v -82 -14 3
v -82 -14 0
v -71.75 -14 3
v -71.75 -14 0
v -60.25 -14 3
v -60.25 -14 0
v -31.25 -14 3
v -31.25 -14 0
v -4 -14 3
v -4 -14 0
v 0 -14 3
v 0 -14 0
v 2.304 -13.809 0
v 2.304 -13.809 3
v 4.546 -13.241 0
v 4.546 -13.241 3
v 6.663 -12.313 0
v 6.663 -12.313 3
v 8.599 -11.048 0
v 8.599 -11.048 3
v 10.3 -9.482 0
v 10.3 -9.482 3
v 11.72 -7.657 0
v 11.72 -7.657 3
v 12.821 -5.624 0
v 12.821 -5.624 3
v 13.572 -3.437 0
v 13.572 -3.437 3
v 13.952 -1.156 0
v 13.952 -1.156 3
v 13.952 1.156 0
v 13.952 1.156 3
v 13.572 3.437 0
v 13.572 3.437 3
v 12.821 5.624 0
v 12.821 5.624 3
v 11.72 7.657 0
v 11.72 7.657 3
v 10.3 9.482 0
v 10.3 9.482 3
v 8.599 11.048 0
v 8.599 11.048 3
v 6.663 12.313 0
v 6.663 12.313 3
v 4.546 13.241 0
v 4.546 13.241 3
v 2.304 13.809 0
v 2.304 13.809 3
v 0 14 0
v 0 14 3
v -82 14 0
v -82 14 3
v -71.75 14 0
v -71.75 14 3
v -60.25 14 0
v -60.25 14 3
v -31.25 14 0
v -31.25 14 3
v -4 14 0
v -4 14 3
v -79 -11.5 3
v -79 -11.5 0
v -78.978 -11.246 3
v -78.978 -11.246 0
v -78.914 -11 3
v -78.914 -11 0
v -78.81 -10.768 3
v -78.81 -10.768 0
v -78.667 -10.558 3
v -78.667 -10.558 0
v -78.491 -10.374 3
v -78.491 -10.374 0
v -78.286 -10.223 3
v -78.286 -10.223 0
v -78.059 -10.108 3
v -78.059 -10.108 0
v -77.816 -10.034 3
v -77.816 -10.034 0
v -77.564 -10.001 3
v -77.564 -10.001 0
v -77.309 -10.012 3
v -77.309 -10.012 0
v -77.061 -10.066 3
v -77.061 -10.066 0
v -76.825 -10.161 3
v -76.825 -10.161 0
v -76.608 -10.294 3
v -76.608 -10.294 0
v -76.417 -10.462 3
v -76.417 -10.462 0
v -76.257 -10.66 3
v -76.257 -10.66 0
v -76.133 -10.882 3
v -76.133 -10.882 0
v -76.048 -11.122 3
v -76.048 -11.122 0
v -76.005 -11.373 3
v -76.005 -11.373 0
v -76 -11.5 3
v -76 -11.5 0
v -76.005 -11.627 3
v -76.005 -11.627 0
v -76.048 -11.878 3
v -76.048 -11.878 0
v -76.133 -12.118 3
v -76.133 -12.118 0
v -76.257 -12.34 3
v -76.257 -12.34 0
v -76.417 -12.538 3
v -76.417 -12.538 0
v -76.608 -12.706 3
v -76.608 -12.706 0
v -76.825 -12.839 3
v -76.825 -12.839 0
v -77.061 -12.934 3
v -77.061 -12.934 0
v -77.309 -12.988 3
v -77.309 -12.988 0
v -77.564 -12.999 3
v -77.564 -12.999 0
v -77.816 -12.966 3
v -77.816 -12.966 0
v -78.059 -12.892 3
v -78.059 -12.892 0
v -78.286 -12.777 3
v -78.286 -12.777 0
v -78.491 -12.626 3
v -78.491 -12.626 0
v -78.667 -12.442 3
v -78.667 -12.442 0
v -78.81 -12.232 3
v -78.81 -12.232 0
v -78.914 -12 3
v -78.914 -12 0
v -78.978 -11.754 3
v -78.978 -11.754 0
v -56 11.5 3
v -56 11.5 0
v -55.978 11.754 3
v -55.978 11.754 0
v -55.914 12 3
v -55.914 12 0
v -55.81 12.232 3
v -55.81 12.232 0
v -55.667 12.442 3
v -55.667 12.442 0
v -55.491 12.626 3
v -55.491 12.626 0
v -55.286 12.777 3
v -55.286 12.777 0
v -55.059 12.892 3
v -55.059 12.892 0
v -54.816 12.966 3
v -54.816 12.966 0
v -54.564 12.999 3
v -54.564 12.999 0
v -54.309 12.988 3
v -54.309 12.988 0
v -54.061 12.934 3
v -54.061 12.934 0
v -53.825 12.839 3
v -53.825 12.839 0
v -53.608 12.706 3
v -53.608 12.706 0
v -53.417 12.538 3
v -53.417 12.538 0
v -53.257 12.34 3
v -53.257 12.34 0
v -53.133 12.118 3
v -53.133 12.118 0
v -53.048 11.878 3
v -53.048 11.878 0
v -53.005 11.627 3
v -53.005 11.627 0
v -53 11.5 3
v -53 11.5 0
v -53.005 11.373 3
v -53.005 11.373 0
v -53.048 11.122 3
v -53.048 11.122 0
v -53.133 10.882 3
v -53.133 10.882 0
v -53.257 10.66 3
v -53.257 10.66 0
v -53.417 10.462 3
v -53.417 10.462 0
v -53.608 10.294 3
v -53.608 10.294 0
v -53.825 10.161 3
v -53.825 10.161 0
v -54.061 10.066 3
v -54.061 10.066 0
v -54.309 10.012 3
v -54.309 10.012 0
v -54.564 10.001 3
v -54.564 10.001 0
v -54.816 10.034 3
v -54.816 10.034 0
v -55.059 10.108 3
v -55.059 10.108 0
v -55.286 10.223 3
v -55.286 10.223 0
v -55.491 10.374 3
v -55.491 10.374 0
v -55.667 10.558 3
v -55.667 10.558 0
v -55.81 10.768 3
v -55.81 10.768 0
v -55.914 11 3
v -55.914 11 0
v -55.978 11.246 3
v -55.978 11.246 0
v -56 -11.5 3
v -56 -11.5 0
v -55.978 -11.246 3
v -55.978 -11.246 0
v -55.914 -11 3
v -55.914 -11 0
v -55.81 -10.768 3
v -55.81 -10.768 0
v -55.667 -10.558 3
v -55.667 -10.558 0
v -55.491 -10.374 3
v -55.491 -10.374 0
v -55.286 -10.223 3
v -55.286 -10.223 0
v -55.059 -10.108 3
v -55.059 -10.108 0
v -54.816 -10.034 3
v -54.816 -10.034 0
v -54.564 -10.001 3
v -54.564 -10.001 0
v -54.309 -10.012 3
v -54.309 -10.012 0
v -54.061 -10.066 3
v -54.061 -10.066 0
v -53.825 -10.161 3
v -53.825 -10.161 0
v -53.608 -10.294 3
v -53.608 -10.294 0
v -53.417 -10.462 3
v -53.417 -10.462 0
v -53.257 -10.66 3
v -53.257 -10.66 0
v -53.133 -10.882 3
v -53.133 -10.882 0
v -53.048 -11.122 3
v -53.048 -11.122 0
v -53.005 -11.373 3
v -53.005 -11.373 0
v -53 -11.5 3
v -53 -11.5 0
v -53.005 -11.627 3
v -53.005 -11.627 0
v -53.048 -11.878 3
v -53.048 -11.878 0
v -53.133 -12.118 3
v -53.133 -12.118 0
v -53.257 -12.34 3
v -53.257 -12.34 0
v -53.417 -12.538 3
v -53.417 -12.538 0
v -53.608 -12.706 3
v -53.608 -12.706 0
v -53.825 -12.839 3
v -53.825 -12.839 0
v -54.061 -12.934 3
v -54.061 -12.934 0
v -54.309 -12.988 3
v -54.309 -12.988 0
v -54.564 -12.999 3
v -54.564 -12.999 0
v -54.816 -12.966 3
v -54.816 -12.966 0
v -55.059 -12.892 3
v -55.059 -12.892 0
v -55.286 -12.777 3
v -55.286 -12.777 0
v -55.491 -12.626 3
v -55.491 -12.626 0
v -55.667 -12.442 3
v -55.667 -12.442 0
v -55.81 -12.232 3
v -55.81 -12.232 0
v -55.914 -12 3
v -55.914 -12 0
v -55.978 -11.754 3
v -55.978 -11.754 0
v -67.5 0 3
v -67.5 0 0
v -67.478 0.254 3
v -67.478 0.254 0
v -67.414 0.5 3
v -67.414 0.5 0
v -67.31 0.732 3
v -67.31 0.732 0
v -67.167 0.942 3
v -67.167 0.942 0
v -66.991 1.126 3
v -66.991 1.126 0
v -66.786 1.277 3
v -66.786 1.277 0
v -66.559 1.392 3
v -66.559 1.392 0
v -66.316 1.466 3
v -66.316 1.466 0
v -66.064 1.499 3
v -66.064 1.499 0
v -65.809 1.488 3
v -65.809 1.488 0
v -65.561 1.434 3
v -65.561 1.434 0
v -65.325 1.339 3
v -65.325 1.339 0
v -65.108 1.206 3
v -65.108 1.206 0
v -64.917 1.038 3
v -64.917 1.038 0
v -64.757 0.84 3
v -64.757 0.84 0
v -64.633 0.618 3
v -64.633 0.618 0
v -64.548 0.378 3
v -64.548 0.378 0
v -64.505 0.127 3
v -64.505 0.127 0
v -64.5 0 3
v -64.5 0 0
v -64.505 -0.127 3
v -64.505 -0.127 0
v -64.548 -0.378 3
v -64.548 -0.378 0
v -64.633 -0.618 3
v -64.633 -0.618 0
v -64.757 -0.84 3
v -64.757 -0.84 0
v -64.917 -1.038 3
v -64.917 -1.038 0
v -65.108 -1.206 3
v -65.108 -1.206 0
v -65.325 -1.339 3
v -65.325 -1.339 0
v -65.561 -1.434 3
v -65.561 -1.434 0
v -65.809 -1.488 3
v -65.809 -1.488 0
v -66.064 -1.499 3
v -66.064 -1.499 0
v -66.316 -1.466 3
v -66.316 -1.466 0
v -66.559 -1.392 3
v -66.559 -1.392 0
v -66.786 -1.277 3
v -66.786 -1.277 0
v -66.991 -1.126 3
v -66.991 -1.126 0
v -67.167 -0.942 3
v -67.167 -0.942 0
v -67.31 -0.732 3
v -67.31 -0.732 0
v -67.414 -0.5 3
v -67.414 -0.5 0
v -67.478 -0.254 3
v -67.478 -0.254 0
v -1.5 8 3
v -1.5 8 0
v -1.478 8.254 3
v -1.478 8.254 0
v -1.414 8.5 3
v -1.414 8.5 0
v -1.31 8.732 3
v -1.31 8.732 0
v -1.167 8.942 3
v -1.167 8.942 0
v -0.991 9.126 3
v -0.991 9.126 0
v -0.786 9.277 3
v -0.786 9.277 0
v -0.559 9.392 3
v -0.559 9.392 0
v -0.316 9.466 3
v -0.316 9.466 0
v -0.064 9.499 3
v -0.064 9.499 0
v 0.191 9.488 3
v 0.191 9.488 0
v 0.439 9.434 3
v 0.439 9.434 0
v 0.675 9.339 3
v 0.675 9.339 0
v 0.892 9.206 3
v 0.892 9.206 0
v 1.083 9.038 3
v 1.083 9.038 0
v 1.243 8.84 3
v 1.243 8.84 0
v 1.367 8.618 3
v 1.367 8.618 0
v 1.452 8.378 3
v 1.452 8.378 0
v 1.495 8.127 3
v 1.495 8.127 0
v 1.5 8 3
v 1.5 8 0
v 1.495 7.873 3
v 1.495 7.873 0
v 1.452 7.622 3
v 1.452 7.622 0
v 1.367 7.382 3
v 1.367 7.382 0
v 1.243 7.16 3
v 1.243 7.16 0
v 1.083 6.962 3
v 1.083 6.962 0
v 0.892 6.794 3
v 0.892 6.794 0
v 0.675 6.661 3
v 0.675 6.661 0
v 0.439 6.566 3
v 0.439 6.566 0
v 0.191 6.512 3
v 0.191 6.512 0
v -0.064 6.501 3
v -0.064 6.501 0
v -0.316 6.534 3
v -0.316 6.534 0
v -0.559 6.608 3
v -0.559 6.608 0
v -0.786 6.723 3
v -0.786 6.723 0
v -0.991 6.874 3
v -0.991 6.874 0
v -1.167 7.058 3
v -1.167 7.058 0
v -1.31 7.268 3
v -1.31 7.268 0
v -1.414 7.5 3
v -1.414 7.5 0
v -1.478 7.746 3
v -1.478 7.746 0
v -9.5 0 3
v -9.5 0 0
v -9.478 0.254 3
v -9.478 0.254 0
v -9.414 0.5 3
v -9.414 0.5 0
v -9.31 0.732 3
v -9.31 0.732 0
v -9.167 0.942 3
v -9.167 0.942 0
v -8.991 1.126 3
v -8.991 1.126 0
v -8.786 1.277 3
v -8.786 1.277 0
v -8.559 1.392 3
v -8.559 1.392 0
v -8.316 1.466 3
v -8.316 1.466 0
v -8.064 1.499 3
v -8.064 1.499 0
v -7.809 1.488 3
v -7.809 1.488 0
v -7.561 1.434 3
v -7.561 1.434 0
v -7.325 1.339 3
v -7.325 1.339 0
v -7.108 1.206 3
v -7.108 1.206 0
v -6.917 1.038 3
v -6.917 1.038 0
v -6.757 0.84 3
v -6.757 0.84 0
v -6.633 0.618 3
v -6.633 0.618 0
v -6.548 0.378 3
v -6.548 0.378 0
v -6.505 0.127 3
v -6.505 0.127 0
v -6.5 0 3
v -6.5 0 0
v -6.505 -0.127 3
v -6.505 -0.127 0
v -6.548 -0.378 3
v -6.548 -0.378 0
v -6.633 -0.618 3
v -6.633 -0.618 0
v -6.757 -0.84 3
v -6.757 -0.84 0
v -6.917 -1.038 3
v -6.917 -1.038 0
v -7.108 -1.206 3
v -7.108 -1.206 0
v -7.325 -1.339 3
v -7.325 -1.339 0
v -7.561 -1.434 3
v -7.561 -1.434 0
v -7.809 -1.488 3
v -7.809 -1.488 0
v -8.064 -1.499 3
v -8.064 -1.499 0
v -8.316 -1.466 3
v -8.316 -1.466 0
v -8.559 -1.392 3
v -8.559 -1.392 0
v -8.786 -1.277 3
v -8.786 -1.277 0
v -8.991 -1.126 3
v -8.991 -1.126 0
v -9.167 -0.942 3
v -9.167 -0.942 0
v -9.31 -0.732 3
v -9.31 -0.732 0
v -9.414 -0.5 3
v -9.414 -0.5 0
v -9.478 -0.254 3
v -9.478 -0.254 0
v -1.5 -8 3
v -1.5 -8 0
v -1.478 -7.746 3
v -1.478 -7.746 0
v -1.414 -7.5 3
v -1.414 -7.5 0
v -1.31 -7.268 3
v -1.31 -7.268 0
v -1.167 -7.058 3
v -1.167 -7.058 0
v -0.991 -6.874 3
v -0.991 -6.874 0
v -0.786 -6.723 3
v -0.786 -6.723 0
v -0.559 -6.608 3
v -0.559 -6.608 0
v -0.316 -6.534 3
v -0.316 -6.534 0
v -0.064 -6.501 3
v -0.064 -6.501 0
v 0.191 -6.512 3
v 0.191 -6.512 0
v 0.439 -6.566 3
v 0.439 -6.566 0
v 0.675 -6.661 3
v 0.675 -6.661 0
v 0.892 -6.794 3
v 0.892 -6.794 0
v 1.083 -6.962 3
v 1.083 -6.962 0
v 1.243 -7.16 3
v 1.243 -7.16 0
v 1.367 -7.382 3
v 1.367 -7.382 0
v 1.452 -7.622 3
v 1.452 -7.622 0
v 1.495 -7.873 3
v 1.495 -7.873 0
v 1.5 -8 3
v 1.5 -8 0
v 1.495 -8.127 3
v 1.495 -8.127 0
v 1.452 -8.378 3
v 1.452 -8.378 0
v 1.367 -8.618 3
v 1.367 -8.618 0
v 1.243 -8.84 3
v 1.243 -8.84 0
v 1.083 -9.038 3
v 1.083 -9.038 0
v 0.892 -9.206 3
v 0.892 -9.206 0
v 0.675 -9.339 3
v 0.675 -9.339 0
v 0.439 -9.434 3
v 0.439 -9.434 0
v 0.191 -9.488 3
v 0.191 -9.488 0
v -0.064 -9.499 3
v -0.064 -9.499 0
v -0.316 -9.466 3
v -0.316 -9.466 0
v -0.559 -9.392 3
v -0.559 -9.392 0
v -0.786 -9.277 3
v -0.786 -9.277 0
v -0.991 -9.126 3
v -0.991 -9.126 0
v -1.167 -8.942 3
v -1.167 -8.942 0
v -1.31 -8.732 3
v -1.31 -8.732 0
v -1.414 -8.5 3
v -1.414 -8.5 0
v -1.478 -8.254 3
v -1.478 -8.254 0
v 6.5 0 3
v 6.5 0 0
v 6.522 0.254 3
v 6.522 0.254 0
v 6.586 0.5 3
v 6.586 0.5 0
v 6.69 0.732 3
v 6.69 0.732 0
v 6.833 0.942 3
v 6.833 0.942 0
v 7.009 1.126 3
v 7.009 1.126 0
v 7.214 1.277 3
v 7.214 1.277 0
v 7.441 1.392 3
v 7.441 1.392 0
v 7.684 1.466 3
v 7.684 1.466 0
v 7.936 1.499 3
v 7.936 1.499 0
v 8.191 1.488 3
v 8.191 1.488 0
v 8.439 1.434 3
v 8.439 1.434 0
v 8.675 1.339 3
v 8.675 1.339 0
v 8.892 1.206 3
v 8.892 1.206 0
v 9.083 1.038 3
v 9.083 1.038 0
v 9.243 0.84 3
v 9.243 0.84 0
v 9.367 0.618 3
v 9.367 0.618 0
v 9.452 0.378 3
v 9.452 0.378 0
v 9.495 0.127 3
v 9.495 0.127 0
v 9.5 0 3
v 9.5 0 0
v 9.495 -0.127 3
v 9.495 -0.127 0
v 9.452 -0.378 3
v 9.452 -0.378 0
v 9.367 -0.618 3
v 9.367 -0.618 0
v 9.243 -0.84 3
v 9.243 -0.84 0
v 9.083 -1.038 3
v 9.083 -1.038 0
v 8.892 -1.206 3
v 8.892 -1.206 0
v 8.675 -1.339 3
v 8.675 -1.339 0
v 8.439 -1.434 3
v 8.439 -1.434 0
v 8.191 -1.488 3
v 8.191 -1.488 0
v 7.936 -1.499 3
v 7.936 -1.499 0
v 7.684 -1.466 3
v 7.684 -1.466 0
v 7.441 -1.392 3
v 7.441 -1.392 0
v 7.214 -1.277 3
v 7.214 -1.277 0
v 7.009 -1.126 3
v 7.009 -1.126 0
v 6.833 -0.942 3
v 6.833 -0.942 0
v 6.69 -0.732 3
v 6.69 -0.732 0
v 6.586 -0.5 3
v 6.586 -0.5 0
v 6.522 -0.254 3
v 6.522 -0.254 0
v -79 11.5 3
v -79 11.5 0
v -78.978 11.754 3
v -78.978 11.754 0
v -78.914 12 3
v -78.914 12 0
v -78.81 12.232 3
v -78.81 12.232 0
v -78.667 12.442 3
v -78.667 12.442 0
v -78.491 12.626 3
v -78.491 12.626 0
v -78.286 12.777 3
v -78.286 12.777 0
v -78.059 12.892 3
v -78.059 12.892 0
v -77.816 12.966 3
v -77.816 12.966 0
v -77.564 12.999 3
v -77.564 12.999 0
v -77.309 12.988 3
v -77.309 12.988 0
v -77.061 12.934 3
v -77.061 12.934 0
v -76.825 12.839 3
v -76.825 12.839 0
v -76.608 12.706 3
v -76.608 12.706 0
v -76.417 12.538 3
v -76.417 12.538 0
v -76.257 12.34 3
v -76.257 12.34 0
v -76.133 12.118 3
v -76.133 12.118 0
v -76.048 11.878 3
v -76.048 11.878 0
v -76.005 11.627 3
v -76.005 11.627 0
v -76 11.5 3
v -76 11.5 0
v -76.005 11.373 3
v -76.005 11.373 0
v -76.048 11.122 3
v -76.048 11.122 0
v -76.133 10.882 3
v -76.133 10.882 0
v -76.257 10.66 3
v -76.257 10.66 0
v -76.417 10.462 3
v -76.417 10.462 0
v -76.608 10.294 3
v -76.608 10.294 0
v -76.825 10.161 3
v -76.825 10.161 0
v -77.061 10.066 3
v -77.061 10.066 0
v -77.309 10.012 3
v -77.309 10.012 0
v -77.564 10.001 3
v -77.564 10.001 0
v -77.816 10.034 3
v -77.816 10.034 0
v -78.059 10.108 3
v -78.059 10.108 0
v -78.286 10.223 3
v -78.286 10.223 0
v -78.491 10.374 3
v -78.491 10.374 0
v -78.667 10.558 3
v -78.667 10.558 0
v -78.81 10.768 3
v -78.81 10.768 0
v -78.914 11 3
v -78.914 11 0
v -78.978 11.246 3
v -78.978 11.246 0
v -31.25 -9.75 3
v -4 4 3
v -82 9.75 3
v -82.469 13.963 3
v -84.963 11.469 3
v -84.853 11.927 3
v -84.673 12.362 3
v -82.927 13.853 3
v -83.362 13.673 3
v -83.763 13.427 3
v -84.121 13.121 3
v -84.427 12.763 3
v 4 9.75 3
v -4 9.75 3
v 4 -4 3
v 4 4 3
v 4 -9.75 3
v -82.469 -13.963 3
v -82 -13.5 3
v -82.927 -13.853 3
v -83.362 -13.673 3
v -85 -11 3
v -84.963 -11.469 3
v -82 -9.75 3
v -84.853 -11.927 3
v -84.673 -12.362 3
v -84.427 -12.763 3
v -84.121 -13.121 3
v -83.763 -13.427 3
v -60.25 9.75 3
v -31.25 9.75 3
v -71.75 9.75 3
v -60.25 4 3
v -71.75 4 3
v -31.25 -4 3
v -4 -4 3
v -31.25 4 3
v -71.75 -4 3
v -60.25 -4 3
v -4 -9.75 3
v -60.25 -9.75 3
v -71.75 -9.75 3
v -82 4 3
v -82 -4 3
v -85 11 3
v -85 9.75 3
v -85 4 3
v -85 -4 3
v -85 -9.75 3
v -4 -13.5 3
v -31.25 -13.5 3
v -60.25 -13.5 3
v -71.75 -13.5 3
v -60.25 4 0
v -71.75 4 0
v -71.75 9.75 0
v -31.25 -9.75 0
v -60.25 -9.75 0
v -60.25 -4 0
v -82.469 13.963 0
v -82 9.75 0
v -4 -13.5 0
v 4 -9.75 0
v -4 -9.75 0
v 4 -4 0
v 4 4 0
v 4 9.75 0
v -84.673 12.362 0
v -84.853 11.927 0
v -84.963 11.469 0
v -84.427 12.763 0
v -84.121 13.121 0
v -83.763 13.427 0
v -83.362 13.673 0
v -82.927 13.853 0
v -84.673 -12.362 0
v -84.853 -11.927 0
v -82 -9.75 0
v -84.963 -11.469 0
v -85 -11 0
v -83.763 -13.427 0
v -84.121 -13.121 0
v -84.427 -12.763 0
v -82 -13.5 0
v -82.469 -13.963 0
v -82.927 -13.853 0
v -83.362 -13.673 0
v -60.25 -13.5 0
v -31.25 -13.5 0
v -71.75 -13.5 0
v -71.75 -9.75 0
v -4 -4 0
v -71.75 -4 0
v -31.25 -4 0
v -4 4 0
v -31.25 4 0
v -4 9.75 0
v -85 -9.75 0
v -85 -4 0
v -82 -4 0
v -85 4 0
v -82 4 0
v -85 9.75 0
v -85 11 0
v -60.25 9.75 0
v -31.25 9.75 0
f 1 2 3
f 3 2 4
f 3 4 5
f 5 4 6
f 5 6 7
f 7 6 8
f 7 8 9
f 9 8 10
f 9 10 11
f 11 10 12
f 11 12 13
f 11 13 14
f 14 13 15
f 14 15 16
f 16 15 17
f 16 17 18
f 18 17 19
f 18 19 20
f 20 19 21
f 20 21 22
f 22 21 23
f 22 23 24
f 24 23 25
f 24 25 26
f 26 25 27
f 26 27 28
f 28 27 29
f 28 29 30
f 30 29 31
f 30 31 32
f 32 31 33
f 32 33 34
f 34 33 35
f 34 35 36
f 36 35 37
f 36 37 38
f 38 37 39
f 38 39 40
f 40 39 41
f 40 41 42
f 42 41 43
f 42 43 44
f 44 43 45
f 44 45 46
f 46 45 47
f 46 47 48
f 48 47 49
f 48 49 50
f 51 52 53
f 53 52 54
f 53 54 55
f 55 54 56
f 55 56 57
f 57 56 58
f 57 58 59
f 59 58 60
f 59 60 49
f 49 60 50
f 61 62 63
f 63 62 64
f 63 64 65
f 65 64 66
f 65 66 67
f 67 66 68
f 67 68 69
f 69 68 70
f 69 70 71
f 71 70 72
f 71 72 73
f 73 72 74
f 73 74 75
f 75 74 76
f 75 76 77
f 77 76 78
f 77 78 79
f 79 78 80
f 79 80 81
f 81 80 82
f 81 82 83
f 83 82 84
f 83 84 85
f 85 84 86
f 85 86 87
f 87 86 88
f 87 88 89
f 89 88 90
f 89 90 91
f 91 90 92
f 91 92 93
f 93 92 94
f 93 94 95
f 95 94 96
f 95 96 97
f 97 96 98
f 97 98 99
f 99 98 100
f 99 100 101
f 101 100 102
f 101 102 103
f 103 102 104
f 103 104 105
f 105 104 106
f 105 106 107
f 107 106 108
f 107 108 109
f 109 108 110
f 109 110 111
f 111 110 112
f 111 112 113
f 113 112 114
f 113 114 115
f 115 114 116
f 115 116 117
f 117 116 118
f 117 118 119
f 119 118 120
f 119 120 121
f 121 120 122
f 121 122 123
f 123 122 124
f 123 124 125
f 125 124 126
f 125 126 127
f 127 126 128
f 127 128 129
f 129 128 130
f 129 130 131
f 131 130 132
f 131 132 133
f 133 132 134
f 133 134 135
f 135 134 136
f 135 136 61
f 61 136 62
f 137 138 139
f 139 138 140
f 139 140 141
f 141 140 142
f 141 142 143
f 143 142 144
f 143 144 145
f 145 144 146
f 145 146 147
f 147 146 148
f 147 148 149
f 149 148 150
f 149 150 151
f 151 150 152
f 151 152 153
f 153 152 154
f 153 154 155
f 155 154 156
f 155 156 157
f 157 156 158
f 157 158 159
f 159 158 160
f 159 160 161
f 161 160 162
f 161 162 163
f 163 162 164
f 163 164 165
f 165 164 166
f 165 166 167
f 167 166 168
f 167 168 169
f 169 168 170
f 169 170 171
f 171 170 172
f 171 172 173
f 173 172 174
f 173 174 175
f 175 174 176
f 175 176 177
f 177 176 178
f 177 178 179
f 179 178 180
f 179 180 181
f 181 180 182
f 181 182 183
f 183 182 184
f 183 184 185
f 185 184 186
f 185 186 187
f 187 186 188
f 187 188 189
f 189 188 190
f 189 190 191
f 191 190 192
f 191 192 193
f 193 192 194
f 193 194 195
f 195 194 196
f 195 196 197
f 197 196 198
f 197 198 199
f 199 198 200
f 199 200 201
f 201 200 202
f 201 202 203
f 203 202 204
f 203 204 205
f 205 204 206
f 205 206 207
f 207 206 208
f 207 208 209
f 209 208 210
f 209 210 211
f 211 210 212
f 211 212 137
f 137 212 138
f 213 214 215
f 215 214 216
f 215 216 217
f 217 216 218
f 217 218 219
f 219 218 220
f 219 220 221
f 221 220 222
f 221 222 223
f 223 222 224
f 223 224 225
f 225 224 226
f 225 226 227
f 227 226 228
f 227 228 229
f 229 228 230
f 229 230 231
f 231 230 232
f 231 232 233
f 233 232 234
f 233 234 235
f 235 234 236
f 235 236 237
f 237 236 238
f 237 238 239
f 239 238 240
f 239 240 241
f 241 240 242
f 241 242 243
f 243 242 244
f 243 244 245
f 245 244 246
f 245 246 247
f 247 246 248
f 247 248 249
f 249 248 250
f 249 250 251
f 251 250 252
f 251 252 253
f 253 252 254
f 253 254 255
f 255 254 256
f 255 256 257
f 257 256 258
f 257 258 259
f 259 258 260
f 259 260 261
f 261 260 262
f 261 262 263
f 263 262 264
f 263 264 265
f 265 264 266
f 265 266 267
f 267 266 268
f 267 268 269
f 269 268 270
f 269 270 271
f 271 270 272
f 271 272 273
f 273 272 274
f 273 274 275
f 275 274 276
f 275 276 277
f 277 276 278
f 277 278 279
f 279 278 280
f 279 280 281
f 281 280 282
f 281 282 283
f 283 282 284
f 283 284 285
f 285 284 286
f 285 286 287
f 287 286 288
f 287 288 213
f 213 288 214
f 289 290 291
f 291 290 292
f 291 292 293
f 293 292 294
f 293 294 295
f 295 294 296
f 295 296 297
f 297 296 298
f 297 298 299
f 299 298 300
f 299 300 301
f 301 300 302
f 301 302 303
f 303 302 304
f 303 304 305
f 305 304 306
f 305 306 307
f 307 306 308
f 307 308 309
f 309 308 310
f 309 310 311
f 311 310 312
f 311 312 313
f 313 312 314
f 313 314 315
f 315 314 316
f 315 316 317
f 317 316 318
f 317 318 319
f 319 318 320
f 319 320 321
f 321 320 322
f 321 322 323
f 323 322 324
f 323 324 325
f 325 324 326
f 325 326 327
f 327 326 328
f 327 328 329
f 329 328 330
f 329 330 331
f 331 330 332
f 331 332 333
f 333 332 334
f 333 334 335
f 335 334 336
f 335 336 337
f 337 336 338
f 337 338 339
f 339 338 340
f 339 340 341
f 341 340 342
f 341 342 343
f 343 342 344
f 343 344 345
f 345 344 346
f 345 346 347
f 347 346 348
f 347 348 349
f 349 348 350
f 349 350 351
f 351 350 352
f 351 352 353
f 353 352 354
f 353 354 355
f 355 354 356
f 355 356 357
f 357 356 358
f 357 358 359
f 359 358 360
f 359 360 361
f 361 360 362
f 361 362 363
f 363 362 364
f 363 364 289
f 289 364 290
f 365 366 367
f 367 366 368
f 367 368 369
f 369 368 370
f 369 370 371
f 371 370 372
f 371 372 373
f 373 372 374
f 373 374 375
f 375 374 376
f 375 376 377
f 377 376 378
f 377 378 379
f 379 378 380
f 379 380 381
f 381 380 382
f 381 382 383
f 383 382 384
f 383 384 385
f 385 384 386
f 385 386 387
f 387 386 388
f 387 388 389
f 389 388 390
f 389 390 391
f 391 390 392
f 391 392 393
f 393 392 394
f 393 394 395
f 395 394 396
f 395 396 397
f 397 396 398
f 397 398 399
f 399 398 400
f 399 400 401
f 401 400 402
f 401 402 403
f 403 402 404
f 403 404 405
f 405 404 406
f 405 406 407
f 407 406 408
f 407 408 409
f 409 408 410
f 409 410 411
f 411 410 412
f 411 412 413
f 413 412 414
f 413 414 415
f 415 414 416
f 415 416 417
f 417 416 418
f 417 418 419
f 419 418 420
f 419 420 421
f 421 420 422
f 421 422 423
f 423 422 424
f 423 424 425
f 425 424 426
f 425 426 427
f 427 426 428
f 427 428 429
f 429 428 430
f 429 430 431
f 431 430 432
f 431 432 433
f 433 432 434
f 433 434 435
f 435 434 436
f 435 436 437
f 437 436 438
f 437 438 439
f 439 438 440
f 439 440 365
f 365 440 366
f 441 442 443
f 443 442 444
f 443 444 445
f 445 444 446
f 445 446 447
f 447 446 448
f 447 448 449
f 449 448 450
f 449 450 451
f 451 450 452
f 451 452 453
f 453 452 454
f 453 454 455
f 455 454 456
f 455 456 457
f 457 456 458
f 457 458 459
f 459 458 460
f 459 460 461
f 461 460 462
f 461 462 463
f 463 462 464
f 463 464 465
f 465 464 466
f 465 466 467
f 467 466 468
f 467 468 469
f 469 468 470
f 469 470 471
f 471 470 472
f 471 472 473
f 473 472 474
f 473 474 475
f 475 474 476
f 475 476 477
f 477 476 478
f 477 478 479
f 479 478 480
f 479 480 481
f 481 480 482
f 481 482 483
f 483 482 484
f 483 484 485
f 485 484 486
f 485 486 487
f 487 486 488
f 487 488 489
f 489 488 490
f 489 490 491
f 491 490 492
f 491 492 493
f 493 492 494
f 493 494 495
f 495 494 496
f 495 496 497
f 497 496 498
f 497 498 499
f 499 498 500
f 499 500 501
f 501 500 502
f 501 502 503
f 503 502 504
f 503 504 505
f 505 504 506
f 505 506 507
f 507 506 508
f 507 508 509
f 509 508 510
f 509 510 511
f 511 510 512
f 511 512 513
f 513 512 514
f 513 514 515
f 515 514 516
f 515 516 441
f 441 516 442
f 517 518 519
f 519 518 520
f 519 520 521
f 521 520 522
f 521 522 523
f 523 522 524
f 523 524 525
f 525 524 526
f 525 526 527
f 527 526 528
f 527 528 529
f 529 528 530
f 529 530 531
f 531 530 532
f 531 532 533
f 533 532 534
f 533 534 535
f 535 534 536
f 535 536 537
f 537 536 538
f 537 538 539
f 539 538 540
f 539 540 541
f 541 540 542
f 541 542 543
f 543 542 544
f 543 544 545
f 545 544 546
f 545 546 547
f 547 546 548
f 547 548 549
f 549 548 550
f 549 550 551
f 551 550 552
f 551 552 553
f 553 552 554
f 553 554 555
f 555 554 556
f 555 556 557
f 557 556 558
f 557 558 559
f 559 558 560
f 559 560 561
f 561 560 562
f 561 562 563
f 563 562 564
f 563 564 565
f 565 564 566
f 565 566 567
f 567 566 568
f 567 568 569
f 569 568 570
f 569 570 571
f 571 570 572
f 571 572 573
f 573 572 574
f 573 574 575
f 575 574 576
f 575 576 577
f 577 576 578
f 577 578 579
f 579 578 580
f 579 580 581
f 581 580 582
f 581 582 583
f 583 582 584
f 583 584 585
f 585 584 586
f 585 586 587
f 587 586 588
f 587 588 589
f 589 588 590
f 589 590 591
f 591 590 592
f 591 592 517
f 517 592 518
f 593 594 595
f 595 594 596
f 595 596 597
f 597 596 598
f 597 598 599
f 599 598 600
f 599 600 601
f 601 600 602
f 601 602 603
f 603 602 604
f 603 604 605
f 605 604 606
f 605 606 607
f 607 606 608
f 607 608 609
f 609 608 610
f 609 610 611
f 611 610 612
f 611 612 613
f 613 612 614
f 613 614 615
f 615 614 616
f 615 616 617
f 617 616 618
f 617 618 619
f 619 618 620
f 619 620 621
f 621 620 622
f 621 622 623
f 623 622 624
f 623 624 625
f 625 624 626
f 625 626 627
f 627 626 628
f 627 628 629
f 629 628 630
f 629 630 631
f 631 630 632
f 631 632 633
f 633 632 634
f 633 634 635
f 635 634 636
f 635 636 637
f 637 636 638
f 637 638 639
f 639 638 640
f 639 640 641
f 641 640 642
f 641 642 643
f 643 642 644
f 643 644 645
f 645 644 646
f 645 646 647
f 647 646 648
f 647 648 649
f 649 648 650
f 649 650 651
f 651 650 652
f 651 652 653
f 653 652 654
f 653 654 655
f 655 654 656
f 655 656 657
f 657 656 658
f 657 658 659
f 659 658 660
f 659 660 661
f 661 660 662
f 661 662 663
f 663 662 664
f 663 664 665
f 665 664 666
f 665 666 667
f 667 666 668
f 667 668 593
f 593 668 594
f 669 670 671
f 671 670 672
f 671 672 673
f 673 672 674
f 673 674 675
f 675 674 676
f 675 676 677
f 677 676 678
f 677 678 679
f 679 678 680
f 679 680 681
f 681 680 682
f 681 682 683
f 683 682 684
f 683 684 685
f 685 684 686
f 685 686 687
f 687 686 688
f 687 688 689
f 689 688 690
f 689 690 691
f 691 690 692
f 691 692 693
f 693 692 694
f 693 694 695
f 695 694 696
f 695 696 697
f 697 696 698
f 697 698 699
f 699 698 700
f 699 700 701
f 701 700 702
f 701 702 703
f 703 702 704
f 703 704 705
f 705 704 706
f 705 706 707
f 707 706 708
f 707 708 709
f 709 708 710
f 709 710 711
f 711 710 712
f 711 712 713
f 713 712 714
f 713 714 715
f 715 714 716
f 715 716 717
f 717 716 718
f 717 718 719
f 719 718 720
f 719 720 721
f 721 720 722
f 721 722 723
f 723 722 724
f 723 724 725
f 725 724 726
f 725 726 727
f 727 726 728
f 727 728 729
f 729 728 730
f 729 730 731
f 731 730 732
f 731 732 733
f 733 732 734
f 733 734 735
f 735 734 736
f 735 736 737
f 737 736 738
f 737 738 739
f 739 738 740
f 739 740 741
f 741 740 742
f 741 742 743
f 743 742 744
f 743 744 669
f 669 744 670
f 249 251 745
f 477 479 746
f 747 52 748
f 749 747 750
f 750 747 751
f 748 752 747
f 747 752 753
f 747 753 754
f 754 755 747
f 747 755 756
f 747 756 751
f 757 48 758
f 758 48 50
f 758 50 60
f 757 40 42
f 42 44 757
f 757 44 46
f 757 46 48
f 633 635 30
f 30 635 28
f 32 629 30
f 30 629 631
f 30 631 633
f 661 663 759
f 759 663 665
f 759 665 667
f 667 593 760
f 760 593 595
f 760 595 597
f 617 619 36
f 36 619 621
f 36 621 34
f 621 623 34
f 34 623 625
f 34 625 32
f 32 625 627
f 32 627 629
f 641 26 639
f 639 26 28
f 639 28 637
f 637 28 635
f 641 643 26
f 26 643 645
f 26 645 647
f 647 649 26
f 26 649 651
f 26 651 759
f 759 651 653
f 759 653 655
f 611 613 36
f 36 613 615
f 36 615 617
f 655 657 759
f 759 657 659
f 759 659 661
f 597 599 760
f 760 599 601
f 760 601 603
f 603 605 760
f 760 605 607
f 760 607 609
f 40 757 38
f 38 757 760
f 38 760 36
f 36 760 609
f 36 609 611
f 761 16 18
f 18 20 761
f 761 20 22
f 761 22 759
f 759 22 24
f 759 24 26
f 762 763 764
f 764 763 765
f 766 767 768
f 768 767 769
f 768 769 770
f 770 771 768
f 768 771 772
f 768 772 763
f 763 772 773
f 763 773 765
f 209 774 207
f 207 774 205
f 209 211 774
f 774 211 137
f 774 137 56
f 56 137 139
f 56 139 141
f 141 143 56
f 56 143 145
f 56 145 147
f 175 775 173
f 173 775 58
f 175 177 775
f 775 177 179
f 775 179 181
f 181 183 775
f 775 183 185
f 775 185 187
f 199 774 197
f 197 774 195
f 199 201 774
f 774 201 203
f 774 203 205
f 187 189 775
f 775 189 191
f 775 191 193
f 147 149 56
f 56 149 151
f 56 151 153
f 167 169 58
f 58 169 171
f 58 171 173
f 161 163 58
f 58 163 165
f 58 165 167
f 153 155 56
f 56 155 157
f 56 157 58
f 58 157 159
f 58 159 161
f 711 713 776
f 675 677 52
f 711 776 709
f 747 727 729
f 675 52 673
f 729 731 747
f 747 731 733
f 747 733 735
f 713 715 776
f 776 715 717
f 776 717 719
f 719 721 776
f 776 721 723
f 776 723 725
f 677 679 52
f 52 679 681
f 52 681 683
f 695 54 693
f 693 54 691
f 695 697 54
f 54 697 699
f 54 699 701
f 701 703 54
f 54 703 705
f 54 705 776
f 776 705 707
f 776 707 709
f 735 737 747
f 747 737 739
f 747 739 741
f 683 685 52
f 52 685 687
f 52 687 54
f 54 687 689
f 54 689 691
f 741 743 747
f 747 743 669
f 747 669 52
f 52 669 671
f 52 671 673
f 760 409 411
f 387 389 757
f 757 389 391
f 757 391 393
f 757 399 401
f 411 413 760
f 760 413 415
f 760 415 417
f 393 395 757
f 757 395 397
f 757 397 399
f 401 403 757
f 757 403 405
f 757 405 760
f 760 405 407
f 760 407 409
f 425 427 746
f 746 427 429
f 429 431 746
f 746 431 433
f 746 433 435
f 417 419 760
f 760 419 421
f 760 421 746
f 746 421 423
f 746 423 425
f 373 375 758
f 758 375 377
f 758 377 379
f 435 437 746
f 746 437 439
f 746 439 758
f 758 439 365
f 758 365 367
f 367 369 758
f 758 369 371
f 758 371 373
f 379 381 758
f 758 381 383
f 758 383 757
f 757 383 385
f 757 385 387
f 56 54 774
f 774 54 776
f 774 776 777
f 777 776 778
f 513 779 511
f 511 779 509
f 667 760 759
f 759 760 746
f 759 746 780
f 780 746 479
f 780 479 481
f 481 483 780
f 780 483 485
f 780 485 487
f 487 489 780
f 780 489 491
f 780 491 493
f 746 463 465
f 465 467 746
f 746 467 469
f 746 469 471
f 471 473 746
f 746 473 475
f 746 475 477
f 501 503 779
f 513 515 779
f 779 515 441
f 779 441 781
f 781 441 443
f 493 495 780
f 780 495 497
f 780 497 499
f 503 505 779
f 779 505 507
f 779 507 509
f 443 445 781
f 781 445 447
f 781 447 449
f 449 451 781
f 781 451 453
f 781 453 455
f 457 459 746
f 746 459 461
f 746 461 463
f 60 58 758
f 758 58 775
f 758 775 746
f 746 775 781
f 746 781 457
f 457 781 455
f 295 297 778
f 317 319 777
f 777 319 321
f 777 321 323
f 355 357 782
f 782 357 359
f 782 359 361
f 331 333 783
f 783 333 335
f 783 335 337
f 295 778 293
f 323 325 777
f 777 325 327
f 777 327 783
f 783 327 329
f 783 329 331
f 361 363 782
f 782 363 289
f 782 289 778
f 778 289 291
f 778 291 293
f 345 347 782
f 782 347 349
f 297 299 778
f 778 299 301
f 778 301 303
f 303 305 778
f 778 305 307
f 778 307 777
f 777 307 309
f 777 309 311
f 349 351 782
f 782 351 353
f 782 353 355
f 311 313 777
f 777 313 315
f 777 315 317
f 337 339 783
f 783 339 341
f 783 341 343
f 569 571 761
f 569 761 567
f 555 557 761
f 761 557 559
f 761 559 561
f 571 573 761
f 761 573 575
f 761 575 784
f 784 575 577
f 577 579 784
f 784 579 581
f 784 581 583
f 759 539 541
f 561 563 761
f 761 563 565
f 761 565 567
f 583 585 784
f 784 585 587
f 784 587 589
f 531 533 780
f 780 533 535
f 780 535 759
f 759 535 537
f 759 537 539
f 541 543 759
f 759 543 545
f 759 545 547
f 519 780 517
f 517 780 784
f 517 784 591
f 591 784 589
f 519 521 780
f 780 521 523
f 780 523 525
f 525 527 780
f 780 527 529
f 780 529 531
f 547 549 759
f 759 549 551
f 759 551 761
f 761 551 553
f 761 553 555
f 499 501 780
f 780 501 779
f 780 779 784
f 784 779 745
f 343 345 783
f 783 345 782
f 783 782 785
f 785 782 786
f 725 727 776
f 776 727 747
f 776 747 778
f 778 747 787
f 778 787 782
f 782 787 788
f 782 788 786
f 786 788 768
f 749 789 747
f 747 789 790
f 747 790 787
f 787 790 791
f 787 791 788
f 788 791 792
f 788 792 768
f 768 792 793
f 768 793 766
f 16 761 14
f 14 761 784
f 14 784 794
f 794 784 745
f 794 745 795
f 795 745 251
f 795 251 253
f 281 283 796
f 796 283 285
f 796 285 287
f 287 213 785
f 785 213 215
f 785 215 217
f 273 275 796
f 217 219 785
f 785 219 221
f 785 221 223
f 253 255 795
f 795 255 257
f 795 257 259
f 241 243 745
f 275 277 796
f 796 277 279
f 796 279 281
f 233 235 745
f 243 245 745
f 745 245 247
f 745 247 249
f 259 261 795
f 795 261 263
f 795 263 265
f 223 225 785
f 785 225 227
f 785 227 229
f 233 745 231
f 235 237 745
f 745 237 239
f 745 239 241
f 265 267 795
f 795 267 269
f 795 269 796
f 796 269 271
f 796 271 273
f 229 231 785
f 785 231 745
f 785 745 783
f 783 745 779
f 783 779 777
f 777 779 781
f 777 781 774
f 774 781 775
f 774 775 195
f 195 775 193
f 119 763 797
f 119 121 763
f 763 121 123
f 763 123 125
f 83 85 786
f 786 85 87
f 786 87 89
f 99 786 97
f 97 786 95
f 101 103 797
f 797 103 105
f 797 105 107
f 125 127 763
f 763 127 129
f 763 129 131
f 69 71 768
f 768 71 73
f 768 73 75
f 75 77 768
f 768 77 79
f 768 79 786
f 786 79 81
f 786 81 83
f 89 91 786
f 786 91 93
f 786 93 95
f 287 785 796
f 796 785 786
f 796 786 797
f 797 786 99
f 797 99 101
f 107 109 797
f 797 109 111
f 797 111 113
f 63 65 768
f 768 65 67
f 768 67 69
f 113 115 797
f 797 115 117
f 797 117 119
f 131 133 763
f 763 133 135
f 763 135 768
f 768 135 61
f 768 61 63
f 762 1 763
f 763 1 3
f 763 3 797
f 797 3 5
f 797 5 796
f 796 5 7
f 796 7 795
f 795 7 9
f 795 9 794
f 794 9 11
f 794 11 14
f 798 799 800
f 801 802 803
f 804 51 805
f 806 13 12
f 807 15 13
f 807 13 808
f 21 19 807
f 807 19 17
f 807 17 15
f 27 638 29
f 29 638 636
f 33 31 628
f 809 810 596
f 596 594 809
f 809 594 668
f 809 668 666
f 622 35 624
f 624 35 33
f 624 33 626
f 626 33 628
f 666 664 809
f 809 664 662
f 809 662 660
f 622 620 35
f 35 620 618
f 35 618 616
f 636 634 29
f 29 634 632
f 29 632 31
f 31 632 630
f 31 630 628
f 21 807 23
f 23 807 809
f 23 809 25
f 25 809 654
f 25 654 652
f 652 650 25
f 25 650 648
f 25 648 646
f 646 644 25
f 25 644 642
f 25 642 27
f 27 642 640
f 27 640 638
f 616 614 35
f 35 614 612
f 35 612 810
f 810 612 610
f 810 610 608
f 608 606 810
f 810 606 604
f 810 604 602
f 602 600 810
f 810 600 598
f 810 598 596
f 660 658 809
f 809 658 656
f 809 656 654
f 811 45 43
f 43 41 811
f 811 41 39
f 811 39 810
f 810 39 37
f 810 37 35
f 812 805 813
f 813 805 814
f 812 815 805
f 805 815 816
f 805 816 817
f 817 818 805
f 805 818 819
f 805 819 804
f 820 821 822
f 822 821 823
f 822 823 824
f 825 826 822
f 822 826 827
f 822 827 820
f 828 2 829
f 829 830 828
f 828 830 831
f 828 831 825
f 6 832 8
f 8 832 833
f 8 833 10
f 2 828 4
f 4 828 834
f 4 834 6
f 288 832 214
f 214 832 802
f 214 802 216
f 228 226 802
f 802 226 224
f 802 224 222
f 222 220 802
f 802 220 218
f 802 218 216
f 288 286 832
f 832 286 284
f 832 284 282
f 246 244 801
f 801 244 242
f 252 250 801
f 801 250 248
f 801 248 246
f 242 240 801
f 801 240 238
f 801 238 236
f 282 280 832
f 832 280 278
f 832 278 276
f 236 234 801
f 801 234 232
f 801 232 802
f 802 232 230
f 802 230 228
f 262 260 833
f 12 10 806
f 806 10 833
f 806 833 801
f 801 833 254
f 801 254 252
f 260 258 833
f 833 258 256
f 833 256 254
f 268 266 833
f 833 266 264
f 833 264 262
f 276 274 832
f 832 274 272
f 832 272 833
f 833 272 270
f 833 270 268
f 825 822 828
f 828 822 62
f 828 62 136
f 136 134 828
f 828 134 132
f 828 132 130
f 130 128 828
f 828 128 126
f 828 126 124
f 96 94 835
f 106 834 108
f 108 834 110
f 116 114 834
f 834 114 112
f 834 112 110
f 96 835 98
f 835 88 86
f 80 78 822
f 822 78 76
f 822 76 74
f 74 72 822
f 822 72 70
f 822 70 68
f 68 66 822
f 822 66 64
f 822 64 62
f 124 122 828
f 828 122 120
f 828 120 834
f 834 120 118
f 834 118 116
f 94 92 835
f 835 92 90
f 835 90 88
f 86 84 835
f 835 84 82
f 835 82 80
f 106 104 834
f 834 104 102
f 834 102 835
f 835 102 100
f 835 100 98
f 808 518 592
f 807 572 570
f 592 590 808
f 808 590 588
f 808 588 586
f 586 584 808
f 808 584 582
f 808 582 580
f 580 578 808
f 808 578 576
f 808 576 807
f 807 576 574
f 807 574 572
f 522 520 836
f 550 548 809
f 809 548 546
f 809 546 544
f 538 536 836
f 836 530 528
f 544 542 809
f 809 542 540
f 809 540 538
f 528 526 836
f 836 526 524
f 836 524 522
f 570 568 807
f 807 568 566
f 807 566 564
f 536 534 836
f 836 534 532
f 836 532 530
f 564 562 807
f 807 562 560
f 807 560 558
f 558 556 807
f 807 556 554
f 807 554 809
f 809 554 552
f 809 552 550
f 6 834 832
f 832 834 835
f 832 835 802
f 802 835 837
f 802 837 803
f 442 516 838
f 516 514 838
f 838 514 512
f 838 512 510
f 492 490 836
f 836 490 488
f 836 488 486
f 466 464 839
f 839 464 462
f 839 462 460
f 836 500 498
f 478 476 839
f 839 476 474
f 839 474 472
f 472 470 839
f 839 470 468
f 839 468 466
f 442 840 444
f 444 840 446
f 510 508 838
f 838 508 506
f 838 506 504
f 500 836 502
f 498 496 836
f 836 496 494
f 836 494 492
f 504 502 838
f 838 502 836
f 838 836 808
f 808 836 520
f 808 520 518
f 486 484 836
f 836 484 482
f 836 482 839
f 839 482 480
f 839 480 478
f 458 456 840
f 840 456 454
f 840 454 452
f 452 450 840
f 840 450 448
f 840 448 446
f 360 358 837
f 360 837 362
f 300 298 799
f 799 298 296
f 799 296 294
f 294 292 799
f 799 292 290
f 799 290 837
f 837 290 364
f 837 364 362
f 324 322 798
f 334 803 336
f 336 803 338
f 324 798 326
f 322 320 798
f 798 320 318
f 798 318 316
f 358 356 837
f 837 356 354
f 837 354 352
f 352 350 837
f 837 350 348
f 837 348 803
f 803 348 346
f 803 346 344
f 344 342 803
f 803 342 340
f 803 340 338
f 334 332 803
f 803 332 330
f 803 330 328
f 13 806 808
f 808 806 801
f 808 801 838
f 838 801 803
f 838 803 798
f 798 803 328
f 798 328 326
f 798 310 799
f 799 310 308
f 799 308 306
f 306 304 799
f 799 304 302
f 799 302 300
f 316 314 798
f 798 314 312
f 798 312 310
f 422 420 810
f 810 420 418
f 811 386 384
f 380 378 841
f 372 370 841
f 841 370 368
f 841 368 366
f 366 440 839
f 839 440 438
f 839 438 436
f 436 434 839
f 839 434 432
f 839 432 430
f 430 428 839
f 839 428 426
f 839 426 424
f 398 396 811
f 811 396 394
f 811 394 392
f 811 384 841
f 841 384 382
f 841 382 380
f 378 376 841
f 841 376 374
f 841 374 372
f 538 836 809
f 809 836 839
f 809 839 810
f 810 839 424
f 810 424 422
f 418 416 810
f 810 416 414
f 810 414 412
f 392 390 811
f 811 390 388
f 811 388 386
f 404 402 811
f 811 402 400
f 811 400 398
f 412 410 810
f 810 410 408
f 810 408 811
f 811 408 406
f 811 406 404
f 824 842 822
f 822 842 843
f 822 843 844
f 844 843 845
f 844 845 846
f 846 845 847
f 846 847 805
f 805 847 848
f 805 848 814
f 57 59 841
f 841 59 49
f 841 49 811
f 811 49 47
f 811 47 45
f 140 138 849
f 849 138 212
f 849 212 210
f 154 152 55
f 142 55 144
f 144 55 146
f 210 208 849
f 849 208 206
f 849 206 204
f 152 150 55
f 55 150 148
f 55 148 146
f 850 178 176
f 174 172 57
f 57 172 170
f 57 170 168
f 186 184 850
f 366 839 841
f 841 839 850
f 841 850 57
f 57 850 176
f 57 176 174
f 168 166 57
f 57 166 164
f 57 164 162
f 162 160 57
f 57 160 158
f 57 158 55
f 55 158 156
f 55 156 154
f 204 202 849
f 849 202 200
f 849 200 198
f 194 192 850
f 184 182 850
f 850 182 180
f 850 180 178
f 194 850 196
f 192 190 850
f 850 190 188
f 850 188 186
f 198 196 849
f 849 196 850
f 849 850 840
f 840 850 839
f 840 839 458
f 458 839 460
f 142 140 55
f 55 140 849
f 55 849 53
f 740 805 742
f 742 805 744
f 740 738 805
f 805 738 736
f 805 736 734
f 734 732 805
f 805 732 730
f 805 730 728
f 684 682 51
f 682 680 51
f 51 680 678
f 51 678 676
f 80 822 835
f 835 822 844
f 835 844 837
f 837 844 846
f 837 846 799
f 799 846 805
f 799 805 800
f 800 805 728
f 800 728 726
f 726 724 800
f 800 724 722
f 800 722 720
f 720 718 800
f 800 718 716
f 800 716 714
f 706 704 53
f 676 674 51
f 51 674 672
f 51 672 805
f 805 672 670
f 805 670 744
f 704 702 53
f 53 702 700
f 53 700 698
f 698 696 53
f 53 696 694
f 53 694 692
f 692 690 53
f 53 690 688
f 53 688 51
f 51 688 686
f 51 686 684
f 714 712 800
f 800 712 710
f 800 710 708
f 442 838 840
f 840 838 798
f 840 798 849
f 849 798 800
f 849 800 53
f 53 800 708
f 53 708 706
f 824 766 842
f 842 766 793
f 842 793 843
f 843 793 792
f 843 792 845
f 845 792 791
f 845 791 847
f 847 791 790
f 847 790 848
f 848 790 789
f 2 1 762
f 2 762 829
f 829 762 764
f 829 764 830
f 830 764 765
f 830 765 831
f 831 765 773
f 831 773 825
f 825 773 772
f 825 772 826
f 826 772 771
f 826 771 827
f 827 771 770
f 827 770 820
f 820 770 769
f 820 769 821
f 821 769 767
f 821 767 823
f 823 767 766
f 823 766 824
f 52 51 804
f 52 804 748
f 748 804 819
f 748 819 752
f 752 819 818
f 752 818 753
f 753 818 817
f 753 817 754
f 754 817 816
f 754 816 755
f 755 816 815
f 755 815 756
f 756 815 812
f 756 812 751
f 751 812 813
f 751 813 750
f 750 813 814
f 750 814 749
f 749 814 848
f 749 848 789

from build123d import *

# Parameters (mm, degrees)
SKETCH_1_R      = 1.5
EXTRUDE_1_DEPTH = 3
FILLET_1_R      = 3


with BuildPart() as part:
    # 草图1 → 凸台-拉伸1 (new body)
    with BuildSketch(Plane.XY):
        with BuildLine():
            Line((-85, -14), (0, -14))
            ThreePointArc((0, -14), (14, 0), (0, 14))
            Line((0, 14), (-85, 14))
            Line((-85, 14), (-85, -14))
        make_face()
        with Locations((-54.5, -11.5)):
            Circle(SKETCH_1_R, mode=Mode.SUBTRACT)
        with Locations((-77.5, -11.5)):
            Circle(SKETCH_1_R, mode=Mode.SUBTRACT)
        with Locations((-66, 0)):
            Circle(SKETCH_1_R, mode=Mode.SUBTRACT)
        with Locations((0, -8)):
            Circle(SKETCH_1_R, mode=Mode.SUBTRACT)
        with Locations((8, 0)):
            Circle(SKETCH_1_R, mode=Mode.SUBTRACT)
        with Locations((-77.5, 11.5)):
            Circle(SKETCH_1_R, mode=Mode.SUBTRACT)
        with Locations((-54.5, 11.5)):
            Circle(SKETCH_1_R, mode=Mode.SUBTRACT)
        with Locations((-8, 0)):
            Circle(SKETCH_1_R, mode=Mode.SUBTRACT)
        with Locations((0, 8)):
            Circle(SKETCH_1_R, mode=Mode.SUBTRACT)
    extrude(amount=EXTRUDE_1_DEPTH)

    # 圆角1
    fillet_1_edges = [part.edges().sort_by_distance(p)[0] for p in [
        (-85, 14, 1.5),
        (-85, -14, 1.5),
    ]]
    fillet(fillet_1_edges, radius=FILLET_1_R)


solid = part.part
